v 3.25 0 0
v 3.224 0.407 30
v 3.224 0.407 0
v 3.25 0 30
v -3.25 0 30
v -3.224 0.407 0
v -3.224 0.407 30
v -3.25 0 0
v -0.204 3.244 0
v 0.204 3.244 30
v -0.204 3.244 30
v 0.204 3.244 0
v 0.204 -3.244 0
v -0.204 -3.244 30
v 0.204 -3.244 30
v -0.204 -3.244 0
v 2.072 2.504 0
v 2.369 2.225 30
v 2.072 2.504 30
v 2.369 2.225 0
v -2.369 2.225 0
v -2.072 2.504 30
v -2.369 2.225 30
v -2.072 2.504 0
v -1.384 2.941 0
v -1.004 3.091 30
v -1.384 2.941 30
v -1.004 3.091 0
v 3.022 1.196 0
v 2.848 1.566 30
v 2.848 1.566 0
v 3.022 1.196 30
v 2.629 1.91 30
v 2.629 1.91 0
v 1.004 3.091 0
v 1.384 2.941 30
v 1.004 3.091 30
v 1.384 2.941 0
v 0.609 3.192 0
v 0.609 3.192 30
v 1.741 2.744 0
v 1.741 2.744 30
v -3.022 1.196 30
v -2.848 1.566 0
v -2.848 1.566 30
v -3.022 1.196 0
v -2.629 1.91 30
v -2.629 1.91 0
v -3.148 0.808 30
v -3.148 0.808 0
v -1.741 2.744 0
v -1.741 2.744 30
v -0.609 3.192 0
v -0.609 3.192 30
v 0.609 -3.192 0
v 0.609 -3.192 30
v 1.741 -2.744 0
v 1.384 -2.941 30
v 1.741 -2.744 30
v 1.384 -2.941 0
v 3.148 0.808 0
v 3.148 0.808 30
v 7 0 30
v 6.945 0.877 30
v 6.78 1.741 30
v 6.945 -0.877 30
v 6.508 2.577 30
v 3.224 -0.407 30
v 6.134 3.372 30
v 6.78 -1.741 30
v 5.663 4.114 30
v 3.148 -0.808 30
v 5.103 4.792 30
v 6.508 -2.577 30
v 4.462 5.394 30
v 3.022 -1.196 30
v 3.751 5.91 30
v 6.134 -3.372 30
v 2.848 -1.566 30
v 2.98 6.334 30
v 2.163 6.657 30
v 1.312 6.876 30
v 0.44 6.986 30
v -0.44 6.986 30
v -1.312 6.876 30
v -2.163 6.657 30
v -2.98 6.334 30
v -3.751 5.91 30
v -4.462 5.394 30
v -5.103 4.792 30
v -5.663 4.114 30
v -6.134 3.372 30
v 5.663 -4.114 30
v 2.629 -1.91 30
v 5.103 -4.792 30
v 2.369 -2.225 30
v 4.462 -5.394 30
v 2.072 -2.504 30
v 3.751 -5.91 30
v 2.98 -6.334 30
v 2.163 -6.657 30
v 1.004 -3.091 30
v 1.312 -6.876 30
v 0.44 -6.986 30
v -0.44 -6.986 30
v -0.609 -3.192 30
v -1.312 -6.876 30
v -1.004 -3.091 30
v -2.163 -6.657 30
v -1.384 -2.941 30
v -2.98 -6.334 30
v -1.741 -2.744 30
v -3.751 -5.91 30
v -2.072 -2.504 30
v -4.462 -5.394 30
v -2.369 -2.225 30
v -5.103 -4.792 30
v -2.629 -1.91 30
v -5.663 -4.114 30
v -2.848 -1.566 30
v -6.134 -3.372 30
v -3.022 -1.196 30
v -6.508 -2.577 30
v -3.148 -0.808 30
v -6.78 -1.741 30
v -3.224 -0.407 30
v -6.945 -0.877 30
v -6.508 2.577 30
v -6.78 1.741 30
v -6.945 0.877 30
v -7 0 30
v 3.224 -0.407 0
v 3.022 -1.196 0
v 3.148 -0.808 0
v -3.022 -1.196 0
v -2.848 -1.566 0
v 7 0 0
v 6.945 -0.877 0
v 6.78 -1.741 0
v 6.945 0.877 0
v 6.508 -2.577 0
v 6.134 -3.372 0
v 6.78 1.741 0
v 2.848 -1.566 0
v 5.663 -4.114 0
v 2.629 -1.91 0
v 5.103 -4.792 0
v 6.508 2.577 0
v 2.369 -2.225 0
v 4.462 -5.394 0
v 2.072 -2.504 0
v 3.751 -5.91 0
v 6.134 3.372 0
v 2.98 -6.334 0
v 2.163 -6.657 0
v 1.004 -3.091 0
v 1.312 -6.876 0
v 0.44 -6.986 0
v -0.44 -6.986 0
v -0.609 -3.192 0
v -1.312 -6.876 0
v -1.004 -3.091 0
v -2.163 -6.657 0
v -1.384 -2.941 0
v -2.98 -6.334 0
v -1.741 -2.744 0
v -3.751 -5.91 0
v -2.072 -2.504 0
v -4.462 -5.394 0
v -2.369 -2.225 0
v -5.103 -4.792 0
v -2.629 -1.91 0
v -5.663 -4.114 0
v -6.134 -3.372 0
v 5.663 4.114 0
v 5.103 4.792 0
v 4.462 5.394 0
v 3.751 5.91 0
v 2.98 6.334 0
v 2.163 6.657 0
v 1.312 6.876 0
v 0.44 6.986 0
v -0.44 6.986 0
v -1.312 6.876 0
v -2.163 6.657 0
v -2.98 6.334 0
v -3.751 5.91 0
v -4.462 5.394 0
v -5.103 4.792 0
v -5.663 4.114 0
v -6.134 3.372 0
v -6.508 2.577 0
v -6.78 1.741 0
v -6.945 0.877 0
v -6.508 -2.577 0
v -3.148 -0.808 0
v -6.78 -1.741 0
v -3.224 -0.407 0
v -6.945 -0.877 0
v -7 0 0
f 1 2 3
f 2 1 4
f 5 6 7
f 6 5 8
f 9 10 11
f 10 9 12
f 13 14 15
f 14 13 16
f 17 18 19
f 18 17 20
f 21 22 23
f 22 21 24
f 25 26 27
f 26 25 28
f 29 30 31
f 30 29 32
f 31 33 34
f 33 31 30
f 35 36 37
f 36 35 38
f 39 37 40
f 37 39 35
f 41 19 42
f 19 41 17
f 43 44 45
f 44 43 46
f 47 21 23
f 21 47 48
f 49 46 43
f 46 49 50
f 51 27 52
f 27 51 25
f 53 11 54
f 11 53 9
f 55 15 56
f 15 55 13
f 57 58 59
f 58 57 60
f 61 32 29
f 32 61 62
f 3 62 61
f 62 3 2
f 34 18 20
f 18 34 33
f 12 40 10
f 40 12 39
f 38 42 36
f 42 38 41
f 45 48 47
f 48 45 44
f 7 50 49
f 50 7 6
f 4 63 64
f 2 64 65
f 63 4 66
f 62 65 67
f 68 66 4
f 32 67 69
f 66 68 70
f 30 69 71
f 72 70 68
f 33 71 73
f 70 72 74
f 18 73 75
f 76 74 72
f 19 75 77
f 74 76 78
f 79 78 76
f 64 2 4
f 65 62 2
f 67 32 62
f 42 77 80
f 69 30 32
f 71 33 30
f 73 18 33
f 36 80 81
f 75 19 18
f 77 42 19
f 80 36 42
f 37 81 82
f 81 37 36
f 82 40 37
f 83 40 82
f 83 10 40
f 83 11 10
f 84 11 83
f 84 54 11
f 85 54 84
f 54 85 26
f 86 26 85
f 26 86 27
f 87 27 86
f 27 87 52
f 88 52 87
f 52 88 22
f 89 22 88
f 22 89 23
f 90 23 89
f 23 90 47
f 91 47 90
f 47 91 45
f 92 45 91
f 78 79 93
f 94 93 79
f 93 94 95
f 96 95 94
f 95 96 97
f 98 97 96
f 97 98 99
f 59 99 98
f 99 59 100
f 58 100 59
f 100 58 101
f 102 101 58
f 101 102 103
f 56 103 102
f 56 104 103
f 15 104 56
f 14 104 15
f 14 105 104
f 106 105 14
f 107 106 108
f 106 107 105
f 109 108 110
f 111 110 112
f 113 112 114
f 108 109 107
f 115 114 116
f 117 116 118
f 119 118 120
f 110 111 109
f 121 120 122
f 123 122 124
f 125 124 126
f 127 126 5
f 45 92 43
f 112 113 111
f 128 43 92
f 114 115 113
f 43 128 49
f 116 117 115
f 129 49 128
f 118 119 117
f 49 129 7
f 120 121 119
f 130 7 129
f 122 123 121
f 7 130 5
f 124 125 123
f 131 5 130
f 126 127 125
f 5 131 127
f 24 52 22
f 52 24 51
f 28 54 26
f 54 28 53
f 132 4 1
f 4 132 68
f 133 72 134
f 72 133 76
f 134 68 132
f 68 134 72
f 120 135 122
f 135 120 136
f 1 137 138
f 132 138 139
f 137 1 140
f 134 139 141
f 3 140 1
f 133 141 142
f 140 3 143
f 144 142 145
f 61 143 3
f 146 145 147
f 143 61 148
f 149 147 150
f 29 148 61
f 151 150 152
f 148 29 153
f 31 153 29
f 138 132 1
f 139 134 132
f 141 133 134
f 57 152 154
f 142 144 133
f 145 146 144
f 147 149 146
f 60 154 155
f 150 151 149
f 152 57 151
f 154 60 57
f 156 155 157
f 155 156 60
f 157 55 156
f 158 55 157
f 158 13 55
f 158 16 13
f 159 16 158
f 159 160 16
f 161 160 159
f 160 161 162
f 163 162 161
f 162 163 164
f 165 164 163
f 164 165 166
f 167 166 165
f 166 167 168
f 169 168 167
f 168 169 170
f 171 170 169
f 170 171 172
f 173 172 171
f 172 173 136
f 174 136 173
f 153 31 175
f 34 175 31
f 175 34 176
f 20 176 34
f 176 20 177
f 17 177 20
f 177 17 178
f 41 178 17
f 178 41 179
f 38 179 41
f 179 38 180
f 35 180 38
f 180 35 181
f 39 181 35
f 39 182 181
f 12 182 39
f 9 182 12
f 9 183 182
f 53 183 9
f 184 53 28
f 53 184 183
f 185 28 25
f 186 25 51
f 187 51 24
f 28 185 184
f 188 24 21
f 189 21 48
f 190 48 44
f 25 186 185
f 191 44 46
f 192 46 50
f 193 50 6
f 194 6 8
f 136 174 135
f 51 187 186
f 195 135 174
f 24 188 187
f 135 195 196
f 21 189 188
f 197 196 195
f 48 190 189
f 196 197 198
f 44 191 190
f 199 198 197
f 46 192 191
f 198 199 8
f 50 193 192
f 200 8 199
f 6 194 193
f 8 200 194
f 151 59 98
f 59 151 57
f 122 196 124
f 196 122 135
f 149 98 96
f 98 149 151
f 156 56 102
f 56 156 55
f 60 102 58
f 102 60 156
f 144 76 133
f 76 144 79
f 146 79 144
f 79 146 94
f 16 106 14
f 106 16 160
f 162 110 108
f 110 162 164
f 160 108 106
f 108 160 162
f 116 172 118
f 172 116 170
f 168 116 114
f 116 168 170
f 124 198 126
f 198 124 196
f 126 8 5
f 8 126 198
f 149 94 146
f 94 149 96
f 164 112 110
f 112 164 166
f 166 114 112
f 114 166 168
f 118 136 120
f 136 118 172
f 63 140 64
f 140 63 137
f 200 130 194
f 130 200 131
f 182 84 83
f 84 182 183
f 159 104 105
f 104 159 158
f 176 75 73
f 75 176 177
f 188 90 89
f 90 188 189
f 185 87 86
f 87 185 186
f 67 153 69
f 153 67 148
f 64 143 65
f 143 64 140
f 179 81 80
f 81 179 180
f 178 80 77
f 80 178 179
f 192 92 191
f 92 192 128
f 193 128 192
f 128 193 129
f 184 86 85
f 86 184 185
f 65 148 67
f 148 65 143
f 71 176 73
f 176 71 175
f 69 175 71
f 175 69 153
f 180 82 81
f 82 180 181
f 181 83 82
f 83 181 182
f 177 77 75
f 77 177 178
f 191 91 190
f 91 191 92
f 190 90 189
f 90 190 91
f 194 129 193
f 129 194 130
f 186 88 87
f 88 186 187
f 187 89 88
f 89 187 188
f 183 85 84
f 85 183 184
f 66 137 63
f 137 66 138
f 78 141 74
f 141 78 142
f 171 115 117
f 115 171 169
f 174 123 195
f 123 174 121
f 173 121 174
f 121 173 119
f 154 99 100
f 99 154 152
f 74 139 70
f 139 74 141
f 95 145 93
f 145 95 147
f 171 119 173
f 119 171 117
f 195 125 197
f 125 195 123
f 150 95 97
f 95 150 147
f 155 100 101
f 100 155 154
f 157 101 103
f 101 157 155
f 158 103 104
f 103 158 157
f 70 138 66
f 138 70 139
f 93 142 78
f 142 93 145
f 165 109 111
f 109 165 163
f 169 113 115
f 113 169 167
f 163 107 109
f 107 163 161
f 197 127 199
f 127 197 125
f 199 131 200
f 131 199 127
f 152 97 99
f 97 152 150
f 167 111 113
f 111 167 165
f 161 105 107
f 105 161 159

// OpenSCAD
$fn = 50;


difference() {
	union() {
		cylinder(h = 30, r = 7.0000000000);
	}
	union() {
		translate(v = [0.0000000000, 0.0000000000, -100.0000000000]) {
			cylinder(h = 200, r = 3.2500000000);
		}
		translate(v = [0.0000000000, 0.0000000000, -100.0000000000]) {
			cylinder(h = 200, r = 3.2500000000);
		}
		translate(v = [0.0000000000, 0.0000000000, -100.0000000000]) {
			cylinder(h = 200, r = 3.2500000000);
		}
		translate(v = [0.0000000000, 0.0000000000, -100.0000000000]) {
			cylinder(h = 200, r = 3.2500000000);
		}
	}
}
